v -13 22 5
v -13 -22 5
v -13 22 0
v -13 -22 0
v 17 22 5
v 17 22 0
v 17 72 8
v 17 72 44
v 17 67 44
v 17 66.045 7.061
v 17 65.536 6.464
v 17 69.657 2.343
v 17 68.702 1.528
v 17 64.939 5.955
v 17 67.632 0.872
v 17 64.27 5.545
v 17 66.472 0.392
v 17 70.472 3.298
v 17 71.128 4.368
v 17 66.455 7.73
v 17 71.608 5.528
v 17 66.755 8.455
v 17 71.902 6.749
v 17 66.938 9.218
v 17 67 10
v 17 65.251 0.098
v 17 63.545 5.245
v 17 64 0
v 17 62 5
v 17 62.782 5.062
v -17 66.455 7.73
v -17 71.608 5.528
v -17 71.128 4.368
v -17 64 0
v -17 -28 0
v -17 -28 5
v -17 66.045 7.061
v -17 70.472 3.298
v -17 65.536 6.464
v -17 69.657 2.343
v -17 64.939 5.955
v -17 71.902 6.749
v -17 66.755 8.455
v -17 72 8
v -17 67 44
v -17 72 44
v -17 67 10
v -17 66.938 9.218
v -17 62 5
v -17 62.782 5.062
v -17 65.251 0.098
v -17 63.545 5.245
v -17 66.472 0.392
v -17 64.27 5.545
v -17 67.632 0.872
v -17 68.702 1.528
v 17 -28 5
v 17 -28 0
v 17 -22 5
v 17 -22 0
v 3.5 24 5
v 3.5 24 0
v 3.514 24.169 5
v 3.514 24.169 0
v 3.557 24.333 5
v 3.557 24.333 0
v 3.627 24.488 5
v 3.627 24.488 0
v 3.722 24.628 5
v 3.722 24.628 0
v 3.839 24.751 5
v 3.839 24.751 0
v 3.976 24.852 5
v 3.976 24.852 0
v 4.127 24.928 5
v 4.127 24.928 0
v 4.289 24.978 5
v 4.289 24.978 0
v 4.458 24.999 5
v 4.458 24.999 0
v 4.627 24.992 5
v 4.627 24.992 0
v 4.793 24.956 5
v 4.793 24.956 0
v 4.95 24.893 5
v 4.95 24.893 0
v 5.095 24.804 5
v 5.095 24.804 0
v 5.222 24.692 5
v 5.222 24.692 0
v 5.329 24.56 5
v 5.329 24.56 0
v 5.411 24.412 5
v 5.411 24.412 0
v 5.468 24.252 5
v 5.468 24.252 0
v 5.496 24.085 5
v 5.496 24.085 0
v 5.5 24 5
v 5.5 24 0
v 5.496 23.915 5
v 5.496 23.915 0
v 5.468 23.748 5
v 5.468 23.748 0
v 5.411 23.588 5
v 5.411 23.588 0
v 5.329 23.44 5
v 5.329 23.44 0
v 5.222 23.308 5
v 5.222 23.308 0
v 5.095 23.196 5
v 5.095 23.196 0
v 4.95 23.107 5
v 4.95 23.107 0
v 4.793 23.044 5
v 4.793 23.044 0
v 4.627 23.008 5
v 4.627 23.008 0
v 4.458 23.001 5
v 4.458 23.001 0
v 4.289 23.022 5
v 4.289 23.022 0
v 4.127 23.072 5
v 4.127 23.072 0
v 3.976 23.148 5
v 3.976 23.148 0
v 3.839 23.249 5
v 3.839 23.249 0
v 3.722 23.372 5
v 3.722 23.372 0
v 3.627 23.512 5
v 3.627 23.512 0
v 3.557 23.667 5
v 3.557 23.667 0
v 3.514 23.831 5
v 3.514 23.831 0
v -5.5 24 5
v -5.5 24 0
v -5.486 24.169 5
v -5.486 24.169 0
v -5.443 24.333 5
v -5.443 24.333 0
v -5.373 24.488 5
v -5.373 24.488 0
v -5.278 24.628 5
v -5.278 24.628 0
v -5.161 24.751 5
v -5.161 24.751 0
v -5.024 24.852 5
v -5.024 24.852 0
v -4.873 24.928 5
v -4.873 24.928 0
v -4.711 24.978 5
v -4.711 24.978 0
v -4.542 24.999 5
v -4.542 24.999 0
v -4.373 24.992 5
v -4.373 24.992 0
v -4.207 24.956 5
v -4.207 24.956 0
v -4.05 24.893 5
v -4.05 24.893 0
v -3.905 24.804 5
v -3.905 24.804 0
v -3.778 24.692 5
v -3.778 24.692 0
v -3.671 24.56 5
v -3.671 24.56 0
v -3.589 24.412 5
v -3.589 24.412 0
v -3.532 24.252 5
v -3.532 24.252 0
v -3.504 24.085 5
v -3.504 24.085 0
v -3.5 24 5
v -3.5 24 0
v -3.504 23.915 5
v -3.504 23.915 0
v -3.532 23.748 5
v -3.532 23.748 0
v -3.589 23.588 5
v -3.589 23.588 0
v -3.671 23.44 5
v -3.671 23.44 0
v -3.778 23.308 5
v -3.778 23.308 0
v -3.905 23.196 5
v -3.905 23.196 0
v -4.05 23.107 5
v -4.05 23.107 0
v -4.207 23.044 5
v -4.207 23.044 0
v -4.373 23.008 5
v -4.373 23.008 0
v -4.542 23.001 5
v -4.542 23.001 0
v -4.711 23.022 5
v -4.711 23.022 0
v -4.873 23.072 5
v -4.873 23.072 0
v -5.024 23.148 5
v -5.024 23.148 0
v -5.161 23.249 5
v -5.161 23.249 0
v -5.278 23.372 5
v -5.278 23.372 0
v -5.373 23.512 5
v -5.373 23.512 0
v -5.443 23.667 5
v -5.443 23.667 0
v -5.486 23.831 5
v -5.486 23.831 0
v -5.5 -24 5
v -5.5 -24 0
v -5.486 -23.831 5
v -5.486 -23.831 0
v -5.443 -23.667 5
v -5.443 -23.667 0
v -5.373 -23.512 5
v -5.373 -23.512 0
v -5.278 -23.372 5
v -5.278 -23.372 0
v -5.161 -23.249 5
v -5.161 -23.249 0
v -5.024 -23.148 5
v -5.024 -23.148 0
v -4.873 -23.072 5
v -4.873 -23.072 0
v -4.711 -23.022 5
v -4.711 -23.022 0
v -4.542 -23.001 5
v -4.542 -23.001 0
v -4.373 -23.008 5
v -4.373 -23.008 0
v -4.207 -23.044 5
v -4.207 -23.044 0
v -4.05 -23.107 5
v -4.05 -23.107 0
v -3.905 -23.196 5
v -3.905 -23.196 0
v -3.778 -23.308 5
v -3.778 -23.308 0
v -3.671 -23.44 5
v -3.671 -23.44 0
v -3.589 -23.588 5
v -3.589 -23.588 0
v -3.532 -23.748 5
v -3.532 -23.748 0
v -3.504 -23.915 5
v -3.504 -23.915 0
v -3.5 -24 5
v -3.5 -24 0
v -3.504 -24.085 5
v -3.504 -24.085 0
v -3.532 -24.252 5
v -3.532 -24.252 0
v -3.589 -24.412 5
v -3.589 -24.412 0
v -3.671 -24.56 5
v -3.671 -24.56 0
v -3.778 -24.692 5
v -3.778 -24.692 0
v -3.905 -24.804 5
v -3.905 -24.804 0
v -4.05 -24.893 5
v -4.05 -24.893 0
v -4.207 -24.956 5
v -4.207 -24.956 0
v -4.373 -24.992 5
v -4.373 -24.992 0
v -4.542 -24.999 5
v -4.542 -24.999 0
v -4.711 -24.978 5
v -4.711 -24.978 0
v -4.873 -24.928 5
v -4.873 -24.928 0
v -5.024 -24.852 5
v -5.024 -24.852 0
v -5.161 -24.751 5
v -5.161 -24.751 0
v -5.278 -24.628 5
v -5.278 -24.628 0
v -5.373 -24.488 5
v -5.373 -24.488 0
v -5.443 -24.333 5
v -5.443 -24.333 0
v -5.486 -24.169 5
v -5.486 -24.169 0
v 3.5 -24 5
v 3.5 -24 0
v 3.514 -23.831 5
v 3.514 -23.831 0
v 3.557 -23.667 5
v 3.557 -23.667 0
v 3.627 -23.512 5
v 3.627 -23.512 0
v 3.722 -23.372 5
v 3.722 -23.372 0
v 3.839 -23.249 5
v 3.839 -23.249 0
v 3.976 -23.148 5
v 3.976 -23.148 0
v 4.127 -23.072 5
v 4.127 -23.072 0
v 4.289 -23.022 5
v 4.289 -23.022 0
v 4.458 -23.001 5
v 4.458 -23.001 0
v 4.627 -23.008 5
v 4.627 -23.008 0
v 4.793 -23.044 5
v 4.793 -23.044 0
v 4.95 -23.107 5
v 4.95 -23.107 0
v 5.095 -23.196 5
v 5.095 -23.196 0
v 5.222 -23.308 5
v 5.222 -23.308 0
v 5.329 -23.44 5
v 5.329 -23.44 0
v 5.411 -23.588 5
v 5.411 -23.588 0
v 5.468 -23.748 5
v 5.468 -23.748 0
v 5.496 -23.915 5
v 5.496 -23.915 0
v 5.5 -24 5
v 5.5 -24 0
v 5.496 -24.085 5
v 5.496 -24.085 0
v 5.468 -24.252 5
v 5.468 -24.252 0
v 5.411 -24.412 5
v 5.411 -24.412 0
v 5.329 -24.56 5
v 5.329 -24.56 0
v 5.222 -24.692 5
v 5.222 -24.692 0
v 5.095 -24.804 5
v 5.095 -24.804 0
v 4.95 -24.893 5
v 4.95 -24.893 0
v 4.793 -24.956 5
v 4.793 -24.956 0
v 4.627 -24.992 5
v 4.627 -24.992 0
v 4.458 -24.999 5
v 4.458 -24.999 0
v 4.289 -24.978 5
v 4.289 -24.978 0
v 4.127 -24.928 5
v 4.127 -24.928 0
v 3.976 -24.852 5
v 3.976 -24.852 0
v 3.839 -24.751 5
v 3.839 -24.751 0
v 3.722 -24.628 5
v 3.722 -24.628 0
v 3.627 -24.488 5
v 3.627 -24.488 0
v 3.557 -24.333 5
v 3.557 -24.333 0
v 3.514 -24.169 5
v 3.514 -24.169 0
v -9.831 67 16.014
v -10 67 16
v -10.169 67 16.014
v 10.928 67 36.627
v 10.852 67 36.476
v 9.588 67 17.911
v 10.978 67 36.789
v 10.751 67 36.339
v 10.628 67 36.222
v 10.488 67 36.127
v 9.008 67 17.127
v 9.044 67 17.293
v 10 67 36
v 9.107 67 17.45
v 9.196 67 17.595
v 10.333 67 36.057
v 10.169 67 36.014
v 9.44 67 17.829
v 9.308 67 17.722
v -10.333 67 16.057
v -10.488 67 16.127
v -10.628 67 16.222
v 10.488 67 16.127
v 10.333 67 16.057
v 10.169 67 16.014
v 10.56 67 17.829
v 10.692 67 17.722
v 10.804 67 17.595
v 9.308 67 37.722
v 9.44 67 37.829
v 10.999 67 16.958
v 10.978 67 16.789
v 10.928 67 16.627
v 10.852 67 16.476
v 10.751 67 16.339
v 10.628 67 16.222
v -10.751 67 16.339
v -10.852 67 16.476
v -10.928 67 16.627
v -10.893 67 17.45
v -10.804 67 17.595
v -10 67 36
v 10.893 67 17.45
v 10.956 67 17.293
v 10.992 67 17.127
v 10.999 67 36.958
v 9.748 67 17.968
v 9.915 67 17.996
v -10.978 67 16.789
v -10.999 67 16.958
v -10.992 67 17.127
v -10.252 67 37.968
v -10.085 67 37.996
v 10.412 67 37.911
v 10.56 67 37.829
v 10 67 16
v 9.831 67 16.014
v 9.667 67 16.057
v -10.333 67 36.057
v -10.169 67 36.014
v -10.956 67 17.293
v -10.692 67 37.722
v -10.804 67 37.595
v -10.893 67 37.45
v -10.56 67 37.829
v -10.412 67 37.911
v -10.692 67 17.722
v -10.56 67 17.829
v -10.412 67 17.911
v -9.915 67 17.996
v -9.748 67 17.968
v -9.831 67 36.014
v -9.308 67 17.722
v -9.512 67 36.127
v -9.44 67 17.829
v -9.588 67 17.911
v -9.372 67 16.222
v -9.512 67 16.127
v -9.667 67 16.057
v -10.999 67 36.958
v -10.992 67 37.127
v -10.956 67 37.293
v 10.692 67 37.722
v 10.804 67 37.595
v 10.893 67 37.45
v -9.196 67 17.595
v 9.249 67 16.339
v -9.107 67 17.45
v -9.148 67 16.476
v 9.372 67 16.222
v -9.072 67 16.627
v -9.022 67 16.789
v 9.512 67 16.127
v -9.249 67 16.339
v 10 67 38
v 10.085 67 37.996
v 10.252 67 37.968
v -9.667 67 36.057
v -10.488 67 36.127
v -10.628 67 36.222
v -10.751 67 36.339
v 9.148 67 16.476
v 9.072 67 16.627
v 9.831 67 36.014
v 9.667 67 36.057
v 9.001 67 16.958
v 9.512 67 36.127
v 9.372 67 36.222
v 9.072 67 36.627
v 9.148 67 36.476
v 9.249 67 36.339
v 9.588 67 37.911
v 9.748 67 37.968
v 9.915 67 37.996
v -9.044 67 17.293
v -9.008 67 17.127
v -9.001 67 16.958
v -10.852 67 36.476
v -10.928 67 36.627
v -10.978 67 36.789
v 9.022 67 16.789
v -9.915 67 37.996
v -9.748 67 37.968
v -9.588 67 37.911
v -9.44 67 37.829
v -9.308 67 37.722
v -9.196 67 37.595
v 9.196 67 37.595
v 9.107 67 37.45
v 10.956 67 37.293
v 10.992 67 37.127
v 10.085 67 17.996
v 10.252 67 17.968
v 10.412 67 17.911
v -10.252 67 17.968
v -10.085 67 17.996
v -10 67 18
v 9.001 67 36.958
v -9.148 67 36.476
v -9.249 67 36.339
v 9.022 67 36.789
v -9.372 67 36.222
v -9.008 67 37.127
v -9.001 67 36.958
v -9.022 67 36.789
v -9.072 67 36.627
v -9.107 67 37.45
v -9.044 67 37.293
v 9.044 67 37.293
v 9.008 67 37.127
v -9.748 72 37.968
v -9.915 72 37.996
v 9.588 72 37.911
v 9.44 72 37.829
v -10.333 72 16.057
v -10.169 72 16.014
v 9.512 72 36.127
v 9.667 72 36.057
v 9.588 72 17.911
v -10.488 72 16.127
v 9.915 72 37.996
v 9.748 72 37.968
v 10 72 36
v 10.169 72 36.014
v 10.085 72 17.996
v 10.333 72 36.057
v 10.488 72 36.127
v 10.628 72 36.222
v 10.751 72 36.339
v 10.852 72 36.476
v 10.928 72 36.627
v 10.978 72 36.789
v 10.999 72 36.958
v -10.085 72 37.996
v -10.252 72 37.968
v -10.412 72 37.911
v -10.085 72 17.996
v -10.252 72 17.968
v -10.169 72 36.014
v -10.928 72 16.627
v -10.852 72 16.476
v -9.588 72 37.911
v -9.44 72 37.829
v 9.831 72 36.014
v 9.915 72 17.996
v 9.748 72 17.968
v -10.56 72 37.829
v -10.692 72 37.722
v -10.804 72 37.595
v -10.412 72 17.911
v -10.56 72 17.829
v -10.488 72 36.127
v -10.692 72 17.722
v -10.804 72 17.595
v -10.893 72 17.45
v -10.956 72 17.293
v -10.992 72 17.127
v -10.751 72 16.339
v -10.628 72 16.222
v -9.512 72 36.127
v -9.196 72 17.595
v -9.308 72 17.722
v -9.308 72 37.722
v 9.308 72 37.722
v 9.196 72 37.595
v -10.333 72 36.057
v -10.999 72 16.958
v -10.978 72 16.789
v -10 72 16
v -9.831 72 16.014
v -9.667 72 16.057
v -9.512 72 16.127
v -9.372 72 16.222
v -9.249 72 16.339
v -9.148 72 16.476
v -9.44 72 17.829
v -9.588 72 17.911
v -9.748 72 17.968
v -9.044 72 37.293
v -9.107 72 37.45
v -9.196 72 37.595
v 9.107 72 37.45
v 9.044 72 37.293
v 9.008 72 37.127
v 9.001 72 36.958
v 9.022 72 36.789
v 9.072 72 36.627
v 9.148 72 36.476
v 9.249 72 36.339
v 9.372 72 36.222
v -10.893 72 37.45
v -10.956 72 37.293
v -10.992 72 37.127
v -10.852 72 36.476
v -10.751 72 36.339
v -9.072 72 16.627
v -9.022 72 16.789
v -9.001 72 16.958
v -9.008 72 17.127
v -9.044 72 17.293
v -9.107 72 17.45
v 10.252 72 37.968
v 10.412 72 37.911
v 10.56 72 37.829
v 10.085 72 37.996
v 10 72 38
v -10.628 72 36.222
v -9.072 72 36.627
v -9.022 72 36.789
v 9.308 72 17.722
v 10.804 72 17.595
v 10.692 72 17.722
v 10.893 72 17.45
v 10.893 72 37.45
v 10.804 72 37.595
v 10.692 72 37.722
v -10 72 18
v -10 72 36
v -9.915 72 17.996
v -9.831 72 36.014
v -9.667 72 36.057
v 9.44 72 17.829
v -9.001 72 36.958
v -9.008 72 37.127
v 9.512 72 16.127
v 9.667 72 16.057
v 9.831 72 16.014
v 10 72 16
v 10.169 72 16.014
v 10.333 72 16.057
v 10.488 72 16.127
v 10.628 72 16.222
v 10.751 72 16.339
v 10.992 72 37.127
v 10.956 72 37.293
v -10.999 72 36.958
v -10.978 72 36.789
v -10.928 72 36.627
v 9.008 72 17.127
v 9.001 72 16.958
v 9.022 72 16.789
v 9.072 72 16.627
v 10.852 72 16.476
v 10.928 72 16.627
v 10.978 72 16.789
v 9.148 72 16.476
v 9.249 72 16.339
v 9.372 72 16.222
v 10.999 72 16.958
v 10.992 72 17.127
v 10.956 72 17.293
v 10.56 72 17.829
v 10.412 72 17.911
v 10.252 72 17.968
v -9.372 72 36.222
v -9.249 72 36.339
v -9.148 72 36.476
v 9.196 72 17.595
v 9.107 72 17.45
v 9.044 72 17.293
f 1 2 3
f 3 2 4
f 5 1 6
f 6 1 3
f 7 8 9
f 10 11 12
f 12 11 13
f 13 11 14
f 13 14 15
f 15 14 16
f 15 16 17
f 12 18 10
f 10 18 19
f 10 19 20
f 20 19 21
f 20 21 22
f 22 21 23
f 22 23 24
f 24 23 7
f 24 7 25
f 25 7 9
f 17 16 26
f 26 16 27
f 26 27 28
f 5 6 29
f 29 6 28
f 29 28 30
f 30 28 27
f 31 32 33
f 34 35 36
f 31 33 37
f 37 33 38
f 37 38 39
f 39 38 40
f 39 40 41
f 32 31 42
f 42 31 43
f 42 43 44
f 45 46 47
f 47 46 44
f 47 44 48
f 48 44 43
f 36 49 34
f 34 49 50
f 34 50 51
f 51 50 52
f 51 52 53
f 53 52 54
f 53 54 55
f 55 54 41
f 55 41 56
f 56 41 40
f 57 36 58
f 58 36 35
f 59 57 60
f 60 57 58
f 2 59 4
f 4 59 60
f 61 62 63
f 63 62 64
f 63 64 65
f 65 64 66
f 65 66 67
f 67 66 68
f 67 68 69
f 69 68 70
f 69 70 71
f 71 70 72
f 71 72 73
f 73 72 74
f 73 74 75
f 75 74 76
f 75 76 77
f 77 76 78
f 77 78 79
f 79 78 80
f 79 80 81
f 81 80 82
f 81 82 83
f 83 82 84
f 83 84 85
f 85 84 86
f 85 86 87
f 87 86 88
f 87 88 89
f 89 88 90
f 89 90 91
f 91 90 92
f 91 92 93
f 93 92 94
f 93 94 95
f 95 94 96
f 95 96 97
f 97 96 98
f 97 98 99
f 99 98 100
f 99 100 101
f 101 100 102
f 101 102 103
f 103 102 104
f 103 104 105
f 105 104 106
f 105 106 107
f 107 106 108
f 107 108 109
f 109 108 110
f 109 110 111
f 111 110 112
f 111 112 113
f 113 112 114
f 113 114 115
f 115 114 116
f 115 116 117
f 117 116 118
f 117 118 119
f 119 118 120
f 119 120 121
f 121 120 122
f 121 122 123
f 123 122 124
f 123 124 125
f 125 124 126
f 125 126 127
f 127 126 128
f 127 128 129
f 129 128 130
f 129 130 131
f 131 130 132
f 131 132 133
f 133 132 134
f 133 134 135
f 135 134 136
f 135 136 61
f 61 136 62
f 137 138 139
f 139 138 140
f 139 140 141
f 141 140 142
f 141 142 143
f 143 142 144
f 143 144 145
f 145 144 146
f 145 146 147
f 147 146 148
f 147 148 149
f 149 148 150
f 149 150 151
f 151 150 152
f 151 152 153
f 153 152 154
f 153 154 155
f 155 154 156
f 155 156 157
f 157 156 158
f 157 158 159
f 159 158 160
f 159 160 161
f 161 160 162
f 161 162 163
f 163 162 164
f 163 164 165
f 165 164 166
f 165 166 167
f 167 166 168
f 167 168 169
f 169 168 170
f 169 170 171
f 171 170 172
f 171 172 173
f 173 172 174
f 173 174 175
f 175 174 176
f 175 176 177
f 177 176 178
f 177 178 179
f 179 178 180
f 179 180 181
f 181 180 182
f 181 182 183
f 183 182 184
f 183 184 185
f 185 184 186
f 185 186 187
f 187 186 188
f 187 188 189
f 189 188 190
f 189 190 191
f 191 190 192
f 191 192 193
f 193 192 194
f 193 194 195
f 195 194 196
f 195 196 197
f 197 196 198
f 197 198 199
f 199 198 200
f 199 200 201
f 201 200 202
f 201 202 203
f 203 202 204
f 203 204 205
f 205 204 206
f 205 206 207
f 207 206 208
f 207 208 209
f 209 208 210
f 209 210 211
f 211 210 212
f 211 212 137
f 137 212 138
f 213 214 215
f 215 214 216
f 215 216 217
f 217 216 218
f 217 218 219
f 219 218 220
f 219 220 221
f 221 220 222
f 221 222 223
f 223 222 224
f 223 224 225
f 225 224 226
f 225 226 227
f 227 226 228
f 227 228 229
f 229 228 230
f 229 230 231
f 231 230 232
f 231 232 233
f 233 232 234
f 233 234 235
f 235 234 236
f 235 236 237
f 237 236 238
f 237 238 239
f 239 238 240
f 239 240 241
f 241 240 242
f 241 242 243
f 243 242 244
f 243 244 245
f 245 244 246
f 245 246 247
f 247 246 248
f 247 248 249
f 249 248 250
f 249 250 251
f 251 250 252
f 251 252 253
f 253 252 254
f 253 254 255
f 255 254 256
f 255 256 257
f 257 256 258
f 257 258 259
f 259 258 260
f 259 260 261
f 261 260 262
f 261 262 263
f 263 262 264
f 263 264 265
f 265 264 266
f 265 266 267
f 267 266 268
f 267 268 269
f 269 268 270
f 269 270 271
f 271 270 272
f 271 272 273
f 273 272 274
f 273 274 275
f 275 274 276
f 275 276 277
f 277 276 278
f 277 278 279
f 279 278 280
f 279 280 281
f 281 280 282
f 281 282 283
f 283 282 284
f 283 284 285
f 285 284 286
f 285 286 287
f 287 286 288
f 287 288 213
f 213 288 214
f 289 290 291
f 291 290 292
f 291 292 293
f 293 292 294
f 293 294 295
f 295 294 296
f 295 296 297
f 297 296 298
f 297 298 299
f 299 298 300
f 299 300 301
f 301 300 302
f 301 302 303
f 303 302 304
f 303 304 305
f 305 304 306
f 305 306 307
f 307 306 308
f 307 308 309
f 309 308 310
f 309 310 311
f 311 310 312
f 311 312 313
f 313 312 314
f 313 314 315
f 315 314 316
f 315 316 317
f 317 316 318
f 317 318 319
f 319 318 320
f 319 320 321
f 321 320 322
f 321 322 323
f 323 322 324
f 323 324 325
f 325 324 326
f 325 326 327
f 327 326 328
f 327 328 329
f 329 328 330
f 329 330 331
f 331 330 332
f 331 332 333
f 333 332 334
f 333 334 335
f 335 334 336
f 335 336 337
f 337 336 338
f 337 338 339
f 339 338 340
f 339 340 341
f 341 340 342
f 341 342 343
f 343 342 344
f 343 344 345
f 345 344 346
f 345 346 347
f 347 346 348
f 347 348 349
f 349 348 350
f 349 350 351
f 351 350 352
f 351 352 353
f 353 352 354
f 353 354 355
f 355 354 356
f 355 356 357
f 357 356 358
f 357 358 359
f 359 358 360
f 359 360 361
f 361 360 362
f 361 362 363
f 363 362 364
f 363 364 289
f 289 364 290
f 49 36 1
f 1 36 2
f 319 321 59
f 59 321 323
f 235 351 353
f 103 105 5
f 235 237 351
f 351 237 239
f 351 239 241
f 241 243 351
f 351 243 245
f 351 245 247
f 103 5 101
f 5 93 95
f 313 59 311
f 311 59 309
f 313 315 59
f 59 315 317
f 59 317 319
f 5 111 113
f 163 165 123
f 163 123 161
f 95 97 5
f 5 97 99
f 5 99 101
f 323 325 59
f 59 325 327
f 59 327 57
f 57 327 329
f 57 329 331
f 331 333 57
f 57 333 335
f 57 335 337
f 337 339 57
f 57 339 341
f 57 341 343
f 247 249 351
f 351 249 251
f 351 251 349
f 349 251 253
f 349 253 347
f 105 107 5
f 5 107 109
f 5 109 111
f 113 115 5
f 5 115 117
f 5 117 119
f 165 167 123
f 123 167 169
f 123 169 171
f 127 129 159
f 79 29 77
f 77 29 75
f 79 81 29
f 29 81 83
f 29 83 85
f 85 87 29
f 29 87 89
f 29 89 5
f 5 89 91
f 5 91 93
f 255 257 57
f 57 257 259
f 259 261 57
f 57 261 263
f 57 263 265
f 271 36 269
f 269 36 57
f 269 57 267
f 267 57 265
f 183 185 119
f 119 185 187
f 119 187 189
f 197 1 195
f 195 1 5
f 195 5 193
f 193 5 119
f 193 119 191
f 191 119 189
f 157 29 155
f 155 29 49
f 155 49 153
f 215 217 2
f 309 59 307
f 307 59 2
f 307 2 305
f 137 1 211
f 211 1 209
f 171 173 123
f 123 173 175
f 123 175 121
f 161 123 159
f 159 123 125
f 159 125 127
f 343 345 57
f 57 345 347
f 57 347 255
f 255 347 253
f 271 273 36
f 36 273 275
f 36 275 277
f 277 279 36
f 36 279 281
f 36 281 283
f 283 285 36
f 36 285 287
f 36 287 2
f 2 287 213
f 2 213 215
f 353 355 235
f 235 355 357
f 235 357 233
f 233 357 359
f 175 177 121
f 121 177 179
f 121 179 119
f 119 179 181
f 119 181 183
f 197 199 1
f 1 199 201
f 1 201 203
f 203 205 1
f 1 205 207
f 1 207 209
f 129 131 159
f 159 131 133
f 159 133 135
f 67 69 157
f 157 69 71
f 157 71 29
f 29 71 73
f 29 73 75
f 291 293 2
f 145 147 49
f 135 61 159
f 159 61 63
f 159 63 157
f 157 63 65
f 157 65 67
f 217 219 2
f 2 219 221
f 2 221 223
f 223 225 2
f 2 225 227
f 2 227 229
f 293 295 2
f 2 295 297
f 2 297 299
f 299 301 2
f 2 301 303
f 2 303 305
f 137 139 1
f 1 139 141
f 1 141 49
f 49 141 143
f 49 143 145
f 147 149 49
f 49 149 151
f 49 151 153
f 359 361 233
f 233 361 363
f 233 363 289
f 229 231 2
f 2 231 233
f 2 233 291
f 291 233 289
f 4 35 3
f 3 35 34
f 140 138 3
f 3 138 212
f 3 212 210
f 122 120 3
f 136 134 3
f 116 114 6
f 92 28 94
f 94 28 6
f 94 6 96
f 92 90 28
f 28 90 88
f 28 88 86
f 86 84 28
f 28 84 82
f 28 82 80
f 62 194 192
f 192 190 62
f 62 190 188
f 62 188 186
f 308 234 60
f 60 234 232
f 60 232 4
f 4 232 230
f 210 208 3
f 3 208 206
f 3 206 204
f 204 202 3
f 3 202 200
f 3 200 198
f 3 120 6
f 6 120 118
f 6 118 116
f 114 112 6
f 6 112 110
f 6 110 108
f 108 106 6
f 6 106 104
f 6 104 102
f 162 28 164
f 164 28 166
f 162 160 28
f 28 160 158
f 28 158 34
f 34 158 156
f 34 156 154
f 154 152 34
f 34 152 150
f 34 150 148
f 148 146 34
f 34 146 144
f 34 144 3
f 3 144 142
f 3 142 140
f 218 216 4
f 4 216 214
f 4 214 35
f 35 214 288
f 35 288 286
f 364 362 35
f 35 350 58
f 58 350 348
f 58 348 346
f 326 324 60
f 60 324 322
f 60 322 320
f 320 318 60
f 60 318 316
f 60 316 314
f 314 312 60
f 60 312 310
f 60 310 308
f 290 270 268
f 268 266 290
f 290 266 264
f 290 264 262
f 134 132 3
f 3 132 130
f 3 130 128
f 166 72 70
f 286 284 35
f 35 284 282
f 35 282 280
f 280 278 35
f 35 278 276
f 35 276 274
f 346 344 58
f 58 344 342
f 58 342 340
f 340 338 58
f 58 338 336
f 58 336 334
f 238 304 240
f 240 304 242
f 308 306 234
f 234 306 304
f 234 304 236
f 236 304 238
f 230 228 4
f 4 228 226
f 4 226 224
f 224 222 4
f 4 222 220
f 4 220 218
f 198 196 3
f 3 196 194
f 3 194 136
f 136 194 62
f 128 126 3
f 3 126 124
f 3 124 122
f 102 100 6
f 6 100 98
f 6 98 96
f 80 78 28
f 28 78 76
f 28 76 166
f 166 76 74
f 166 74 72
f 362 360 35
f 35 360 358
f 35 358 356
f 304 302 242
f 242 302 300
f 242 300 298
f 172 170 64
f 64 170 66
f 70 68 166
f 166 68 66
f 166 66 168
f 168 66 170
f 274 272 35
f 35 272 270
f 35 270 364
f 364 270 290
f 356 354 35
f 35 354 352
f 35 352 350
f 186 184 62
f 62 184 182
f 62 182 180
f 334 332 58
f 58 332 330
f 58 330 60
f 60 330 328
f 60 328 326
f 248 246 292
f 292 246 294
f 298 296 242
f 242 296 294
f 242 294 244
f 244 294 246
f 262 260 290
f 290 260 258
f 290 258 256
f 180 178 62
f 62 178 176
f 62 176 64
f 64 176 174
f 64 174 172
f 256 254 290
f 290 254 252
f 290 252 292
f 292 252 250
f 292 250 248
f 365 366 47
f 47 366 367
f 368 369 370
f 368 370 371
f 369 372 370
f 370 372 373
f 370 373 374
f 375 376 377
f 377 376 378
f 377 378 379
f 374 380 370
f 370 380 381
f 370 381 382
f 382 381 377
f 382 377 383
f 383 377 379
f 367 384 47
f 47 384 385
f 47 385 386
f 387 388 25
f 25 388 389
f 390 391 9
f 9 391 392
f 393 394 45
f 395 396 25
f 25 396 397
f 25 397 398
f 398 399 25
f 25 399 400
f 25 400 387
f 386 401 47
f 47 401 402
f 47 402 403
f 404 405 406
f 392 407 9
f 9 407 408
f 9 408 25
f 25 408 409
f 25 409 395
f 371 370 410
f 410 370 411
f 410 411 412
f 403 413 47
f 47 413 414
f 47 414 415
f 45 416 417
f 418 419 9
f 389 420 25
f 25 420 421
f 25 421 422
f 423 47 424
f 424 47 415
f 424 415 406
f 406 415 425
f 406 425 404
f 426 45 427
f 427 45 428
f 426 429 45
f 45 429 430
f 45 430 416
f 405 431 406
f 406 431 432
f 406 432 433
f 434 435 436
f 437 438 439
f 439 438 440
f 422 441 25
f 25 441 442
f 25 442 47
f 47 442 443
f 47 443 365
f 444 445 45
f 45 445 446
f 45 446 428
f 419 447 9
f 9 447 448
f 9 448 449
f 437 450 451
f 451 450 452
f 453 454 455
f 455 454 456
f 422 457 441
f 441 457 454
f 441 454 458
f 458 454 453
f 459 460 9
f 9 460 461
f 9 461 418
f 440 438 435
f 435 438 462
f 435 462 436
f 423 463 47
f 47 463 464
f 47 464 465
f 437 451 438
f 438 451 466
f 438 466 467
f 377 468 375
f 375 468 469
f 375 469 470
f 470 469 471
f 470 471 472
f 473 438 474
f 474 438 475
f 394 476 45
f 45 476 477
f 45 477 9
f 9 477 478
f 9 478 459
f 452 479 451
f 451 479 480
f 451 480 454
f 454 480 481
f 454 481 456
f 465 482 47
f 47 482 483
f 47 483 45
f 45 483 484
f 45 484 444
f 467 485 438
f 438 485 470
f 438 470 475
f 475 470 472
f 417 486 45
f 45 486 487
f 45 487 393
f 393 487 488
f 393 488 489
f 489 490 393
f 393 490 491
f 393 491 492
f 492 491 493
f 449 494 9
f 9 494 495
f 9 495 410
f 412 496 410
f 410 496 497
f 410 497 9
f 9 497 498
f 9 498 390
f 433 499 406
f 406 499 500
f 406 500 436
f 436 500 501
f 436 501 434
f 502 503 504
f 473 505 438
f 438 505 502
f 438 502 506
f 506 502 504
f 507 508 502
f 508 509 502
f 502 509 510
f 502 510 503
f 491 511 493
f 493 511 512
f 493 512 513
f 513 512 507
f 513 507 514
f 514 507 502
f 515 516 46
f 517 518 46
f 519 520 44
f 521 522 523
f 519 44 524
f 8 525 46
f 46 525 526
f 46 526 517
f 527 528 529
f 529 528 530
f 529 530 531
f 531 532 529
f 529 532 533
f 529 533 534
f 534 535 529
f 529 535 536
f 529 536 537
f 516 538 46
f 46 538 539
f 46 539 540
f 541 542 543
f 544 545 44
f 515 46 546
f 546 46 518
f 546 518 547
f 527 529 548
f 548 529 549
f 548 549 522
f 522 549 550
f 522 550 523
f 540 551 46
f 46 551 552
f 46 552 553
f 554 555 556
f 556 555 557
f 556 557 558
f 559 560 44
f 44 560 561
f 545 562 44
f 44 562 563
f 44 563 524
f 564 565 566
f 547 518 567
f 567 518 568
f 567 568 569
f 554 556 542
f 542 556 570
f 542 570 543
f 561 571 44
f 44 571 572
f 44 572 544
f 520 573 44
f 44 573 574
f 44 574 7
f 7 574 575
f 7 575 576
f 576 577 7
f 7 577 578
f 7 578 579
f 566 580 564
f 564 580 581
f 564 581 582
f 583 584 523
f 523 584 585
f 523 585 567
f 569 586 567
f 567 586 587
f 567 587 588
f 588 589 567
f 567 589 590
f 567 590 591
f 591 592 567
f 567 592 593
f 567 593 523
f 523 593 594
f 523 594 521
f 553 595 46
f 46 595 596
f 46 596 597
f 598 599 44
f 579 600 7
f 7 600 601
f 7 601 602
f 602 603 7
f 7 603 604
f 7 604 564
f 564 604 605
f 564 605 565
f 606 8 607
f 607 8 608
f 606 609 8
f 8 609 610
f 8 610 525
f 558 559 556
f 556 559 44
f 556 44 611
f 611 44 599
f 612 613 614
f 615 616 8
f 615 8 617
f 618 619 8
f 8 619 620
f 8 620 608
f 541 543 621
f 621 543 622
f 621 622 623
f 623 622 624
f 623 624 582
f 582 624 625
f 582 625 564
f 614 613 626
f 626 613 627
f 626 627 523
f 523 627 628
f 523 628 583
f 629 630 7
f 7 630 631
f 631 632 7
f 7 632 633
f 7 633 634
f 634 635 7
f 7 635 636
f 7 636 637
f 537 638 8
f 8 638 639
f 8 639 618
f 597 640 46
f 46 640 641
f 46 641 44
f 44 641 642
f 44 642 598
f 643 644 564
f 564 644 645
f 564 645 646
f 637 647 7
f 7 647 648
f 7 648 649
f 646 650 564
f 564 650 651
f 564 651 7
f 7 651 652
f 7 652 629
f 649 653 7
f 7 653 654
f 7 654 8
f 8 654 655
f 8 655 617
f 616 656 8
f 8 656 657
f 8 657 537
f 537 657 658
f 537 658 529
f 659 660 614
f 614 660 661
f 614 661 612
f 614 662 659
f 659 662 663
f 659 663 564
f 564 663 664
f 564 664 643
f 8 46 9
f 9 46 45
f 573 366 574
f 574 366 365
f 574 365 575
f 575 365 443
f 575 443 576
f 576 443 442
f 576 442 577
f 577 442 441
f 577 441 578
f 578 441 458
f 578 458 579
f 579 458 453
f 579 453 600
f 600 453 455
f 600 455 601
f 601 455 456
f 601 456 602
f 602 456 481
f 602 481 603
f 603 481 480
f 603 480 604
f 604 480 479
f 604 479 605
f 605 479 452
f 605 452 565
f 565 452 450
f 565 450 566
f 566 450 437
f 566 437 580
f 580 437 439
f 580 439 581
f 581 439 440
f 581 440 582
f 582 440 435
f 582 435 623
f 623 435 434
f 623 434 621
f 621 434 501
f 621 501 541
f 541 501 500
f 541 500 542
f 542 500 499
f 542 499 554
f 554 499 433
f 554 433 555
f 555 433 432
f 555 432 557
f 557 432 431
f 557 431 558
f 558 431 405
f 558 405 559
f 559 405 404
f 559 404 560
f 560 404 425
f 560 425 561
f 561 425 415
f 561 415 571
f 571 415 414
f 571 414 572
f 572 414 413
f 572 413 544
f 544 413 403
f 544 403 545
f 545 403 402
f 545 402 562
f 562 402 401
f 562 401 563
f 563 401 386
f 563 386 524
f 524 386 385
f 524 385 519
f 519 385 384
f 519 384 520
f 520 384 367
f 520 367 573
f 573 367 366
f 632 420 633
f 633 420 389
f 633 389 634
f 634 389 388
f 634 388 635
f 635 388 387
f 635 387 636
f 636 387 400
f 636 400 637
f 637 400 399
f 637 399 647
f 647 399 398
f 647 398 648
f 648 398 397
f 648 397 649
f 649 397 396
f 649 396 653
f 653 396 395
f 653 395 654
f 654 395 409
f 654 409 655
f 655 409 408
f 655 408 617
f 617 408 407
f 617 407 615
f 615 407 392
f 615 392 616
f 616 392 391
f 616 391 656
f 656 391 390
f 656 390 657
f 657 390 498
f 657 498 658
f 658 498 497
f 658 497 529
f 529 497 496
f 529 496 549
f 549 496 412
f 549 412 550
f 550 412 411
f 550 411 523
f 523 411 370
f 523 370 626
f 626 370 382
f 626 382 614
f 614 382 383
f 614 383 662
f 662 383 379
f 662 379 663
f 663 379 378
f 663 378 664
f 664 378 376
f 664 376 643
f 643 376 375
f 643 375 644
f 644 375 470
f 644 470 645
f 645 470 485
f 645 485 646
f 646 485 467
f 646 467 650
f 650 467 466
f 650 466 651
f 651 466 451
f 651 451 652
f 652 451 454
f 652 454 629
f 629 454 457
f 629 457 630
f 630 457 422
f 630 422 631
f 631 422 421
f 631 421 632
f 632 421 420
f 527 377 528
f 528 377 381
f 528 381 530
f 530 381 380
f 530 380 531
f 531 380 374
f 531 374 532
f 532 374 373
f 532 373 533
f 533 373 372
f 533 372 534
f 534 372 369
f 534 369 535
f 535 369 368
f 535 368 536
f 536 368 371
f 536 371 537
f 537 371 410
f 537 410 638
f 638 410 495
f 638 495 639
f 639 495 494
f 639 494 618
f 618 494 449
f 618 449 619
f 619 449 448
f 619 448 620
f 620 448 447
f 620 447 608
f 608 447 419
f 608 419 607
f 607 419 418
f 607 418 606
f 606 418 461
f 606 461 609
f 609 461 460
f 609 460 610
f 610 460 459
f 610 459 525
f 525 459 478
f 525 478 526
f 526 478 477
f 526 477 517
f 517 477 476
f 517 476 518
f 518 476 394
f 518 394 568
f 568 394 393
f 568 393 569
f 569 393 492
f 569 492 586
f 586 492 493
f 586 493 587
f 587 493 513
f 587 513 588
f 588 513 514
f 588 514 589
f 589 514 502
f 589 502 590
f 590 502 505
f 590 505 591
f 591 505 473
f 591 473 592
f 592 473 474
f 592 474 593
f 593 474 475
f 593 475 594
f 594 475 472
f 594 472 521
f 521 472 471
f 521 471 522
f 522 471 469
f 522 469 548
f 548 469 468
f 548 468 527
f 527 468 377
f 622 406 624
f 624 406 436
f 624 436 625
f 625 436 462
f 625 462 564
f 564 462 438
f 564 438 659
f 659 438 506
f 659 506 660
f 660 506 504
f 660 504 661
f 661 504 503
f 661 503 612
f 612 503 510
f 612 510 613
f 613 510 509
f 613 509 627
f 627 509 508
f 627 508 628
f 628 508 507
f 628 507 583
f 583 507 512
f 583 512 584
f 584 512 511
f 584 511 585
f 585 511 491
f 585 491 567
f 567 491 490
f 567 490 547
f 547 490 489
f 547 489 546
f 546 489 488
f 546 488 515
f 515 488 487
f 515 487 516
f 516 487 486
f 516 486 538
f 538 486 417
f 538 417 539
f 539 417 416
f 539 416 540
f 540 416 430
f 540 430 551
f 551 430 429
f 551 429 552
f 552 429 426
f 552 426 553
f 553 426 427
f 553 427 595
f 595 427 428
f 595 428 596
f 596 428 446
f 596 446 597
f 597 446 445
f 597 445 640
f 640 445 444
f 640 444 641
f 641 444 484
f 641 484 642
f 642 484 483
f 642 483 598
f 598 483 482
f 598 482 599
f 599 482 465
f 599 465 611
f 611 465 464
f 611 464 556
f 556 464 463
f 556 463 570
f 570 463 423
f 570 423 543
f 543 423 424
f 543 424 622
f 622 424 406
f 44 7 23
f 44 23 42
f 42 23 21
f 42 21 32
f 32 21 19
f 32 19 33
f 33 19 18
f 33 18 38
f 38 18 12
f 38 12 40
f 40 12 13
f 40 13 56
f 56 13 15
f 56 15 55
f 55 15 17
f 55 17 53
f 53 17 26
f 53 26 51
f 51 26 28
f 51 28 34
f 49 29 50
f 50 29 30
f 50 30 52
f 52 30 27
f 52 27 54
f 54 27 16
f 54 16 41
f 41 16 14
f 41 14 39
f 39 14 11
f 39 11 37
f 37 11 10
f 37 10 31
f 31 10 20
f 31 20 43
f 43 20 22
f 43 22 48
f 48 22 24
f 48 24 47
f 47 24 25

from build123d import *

# Parameters (mm, degrees)
SKETCH1_R           = 1
BOSS_EXTRUDE1_DEPTH = 5
SKETCH2_W           = 34
SKETCH2_H           = 44
SKETCH2_R           = 1
BOSS_EXTRUDE2_DEPTH = 5
FILLET1_R           = 8
FILLET3_R           = 5


with BuildPart() as part:
    # Sketch1 → Boss-Extrude1 (new body)
    with BuildSketch(Plane.XY):
        Polygon((-17, 67), (-17, -28), (17, -28), (17, -22), (13, -22), (-13, -22), (-13, -21.411764706), (-13, 22), (13, 22), (17, 22), (17, 67), align=None)
        with Locations((-4.5, -24)):
            Circle(SKETCH1_R, mode=Mode.SUBTRACT)
        with Locations((4.5, -24)):
            Circle(SKETCH1_R, mode=Mode.SUBTRACT)
        with Locations((-4.5, 24)):
            Circle(SKETCH1_R, mode=Mode.SUBTRACT)
        with Locations((4.5, 24)):
            Circle(SKETCH1_R, mode=Mode.SUBTRACT)
    extrude(amount=BOSS_EXTRUDE1_DEPTH)

    # Sketch2 → Boss-Extrude2 (add)
    with BuildSketch(Plane(origin=(0, 67, 0), x_dir=(1, 0, 0), z_dir=(0, 1, 0))):
        with Locations((0, -22)):
            Rectangle(SKETCH2_W, SKETCH2_H)
        with Locations((-10, -17)):
            Circle(SKETCH2_R, mode=Mode.SUBTRACT)
        with Locations((10, -17)):
            Circle(SKETCH2_R, mode=Mode.SUBTRACT)
        with Locations((10, -37)):
            Circle(SKETCH2_R, mode=Mode.SUBTRACT)
        with Locations((-10, -37)):
            Circle(SKETCH2_R, mode=Mode.SUBTRACT)
    extrude(amount=BOSS_EXTRUDE2_DEPTH)

    # Fillet1
    fillet1_edges = [part.edges().sort_by_distance(p)[0] for p in [
        (0, 72, 0),
    ]]
    fillet(fillet1_edges, radius=FILLET1_R)

    # Fillet3
    fillet3_edges = [part.edges().sort_by_distance(p)[0] for p in [
        (0, 67, 5),
    ]]
    fillet(fillet3_edges, radius=FILLET3_R)


solid = part.part
